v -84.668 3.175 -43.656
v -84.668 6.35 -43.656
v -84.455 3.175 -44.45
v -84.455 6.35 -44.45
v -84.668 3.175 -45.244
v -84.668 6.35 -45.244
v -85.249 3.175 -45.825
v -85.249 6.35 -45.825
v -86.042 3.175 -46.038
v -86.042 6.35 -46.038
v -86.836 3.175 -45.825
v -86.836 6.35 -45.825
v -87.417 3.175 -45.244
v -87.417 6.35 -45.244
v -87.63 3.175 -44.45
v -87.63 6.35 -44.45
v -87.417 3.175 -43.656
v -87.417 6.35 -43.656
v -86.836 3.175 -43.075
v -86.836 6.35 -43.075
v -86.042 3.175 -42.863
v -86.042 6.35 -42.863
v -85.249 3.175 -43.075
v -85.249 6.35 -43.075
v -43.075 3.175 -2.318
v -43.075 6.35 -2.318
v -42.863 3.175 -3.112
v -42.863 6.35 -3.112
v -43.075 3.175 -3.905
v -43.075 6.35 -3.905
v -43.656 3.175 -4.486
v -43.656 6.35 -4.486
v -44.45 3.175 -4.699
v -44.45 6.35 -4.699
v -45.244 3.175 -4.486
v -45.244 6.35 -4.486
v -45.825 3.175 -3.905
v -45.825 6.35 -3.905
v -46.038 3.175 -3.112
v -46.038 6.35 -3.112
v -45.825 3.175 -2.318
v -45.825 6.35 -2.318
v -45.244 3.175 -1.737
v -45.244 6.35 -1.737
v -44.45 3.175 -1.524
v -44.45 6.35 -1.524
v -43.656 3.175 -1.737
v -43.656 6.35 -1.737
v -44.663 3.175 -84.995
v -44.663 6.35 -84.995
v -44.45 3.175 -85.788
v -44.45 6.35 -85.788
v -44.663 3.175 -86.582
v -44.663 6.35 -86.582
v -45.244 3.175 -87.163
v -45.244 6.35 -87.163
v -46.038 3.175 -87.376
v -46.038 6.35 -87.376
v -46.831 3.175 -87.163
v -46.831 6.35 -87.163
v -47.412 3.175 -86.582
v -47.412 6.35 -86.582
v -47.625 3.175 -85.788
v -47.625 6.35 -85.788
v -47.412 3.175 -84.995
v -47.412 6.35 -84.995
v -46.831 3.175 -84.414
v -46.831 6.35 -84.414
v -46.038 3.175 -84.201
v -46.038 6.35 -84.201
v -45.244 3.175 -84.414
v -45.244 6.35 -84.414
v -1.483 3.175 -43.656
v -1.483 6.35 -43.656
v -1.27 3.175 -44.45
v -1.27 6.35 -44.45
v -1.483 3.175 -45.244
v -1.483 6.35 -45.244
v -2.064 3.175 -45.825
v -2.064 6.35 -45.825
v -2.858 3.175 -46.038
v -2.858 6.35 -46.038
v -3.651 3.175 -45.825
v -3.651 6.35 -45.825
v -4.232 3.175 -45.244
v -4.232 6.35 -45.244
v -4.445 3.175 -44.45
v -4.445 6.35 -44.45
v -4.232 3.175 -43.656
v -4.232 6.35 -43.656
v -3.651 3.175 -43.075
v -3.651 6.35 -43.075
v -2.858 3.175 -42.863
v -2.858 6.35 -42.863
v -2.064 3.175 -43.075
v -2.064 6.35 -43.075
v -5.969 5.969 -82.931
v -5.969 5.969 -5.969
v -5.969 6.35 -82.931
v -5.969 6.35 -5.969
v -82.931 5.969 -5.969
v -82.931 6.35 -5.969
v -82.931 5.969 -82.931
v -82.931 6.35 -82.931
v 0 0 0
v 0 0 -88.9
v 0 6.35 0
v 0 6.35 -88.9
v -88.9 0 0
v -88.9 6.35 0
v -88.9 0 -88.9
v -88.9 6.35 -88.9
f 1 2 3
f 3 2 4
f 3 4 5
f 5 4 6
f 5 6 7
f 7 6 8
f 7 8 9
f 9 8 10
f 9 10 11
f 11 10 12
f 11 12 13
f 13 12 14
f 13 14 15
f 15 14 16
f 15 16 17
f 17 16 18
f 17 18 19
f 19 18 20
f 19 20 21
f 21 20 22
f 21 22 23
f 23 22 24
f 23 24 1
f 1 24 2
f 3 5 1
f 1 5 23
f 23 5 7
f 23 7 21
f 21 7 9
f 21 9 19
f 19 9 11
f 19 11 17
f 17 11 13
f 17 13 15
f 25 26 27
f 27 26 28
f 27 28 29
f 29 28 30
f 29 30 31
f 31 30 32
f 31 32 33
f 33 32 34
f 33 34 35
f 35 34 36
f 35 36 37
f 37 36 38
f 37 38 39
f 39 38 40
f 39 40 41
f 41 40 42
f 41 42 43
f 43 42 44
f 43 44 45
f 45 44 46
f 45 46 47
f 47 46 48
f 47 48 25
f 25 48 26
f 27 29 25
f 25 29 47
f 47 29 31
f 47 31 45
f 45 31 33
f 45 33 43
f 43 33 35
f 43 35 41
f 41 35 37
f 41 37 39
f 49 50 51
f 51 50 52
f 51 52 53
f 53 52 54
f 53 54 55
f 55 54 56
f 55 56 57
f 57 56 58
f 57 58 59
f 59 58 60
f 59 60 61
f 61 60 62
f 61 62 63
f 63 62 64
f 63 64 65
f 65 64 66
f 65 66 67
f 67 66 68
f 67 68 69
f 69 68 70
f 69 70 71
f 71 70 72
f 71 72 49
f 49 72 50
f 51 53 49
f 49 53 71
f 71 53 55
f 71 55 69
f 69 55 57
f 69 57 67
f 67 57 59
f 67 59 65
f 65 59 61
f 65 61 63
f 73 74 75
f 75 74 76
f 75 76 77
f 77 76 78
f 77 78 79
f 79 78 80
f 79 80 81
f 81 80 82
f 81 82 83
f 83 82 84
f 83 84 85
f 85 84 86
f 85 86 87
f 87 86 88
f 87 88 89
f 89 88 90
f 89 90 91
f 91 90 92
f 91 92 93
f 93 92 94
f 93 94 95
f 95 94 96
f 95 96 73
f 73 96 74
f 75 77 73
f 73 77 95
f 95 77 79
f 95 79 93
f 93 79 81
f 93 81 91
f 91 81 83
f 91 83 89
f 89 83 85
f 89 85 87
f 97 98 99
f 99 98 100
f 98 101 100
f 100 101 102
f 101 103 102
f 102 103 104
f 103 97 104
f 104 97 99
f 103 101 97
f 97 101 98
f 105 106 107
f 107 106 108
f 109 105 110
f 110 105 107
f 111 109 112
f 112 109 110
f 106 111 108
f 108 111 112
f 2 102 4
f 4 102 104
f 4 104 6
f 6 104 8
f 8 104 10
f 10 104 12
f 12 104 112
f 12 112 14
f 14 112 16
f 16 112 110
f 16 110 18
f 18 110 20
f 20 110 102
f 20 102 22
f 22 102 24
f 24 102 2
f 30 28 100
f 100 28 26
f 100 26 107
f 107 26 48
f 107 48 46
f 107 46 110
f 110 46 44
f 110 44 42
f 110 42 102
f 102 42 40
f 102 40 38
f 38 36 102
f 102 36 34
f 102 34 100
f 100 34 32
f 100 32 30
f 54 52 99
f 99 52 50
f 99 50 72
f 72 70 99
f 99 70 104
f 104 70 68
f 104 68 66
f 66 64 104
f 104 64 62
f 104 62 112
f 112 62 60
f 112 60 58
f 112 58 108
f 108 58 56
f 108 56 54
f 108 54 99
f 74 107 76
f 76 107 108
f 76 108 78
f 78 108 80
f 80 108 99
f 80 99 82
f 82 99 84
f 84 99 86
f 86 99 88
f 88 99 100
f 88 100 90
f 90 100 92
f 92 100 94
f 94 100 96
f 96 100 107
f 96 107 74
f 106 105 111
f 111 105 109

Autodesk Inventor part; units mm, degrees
ref_plane "YZ Plane" through (0, 0, 0) normal (1, 0, 0) x (0, 1, 0)
ref_plane "XZ Plane" through (0, 0, 0) normal (0, 1, 0) x (-1, 0, 0)
ref_plane "XY Plane" through (0, 0, 0) normal (0, 0, 1) x (1, 0, 0)
sketch "Sketch1" plane through (0, 0, 0) normal (0, 1, 0) x (-1, 0, 0)
  line L0 (0, 0) -> (88.9, 0)
  line L1 (88.9, 0) -> (88.9, -88.9)
  line L2 (88.9, -88.9) -> (0, -88.9)
  line L3 (0, -88.9) -> (0, 0)
  dimension "d0" = 88.9
  dimension "d1" = 88.9
extrude "Extrusion1" add sketch "Sketch1" along normal blind 6.35
shell "Shell1" thickness 5.969 removed faces 1 at (-29.6333, 6.35, -29.6333)
sketch "Sketch2" plane through (0, 6.35, 0) normal (0, 1, 0) x (1, 0, 0)
  circle A0 centre (-44.45, 3.1115) radius 1.5875
  line L0 (-88.9, 88.9) -> (-88.9, 0) projected
  line L1 (-5.969, 5.969) -> (-82.931, 5.969) projected
  circle A1 centre (-86.0425, 44.45) radius 1.5875
  line L2 (-88.9, 0) -> (0, 0) projected
  circle A2 centre (-2.8575, 44.45) radius 1.5875
  line L3 (0, 0) -> (0, 88.9) projected
  circle A3 centre (-46.0375, 85.7885) radius 1.5875
  line L4 (-82.931, 82.931) -> (-5.969, 82.931) projected
  dimension "d8" = 3.175
  dimension "d10" = 2.8575
  dimension "d11" = 3.175
  dimension "d12" = 2.8575
  dimension "d13" = 44.45
  dimension "d14" = 3.175
  dimension "d15" = 2.8575
  dimension "d16" = 3.175
  dimension "d17" = 2.8575
extrude "Extrusion2" cut sketch "Sketch2" against normal blind 3.175
properties part number "bottom plate"
